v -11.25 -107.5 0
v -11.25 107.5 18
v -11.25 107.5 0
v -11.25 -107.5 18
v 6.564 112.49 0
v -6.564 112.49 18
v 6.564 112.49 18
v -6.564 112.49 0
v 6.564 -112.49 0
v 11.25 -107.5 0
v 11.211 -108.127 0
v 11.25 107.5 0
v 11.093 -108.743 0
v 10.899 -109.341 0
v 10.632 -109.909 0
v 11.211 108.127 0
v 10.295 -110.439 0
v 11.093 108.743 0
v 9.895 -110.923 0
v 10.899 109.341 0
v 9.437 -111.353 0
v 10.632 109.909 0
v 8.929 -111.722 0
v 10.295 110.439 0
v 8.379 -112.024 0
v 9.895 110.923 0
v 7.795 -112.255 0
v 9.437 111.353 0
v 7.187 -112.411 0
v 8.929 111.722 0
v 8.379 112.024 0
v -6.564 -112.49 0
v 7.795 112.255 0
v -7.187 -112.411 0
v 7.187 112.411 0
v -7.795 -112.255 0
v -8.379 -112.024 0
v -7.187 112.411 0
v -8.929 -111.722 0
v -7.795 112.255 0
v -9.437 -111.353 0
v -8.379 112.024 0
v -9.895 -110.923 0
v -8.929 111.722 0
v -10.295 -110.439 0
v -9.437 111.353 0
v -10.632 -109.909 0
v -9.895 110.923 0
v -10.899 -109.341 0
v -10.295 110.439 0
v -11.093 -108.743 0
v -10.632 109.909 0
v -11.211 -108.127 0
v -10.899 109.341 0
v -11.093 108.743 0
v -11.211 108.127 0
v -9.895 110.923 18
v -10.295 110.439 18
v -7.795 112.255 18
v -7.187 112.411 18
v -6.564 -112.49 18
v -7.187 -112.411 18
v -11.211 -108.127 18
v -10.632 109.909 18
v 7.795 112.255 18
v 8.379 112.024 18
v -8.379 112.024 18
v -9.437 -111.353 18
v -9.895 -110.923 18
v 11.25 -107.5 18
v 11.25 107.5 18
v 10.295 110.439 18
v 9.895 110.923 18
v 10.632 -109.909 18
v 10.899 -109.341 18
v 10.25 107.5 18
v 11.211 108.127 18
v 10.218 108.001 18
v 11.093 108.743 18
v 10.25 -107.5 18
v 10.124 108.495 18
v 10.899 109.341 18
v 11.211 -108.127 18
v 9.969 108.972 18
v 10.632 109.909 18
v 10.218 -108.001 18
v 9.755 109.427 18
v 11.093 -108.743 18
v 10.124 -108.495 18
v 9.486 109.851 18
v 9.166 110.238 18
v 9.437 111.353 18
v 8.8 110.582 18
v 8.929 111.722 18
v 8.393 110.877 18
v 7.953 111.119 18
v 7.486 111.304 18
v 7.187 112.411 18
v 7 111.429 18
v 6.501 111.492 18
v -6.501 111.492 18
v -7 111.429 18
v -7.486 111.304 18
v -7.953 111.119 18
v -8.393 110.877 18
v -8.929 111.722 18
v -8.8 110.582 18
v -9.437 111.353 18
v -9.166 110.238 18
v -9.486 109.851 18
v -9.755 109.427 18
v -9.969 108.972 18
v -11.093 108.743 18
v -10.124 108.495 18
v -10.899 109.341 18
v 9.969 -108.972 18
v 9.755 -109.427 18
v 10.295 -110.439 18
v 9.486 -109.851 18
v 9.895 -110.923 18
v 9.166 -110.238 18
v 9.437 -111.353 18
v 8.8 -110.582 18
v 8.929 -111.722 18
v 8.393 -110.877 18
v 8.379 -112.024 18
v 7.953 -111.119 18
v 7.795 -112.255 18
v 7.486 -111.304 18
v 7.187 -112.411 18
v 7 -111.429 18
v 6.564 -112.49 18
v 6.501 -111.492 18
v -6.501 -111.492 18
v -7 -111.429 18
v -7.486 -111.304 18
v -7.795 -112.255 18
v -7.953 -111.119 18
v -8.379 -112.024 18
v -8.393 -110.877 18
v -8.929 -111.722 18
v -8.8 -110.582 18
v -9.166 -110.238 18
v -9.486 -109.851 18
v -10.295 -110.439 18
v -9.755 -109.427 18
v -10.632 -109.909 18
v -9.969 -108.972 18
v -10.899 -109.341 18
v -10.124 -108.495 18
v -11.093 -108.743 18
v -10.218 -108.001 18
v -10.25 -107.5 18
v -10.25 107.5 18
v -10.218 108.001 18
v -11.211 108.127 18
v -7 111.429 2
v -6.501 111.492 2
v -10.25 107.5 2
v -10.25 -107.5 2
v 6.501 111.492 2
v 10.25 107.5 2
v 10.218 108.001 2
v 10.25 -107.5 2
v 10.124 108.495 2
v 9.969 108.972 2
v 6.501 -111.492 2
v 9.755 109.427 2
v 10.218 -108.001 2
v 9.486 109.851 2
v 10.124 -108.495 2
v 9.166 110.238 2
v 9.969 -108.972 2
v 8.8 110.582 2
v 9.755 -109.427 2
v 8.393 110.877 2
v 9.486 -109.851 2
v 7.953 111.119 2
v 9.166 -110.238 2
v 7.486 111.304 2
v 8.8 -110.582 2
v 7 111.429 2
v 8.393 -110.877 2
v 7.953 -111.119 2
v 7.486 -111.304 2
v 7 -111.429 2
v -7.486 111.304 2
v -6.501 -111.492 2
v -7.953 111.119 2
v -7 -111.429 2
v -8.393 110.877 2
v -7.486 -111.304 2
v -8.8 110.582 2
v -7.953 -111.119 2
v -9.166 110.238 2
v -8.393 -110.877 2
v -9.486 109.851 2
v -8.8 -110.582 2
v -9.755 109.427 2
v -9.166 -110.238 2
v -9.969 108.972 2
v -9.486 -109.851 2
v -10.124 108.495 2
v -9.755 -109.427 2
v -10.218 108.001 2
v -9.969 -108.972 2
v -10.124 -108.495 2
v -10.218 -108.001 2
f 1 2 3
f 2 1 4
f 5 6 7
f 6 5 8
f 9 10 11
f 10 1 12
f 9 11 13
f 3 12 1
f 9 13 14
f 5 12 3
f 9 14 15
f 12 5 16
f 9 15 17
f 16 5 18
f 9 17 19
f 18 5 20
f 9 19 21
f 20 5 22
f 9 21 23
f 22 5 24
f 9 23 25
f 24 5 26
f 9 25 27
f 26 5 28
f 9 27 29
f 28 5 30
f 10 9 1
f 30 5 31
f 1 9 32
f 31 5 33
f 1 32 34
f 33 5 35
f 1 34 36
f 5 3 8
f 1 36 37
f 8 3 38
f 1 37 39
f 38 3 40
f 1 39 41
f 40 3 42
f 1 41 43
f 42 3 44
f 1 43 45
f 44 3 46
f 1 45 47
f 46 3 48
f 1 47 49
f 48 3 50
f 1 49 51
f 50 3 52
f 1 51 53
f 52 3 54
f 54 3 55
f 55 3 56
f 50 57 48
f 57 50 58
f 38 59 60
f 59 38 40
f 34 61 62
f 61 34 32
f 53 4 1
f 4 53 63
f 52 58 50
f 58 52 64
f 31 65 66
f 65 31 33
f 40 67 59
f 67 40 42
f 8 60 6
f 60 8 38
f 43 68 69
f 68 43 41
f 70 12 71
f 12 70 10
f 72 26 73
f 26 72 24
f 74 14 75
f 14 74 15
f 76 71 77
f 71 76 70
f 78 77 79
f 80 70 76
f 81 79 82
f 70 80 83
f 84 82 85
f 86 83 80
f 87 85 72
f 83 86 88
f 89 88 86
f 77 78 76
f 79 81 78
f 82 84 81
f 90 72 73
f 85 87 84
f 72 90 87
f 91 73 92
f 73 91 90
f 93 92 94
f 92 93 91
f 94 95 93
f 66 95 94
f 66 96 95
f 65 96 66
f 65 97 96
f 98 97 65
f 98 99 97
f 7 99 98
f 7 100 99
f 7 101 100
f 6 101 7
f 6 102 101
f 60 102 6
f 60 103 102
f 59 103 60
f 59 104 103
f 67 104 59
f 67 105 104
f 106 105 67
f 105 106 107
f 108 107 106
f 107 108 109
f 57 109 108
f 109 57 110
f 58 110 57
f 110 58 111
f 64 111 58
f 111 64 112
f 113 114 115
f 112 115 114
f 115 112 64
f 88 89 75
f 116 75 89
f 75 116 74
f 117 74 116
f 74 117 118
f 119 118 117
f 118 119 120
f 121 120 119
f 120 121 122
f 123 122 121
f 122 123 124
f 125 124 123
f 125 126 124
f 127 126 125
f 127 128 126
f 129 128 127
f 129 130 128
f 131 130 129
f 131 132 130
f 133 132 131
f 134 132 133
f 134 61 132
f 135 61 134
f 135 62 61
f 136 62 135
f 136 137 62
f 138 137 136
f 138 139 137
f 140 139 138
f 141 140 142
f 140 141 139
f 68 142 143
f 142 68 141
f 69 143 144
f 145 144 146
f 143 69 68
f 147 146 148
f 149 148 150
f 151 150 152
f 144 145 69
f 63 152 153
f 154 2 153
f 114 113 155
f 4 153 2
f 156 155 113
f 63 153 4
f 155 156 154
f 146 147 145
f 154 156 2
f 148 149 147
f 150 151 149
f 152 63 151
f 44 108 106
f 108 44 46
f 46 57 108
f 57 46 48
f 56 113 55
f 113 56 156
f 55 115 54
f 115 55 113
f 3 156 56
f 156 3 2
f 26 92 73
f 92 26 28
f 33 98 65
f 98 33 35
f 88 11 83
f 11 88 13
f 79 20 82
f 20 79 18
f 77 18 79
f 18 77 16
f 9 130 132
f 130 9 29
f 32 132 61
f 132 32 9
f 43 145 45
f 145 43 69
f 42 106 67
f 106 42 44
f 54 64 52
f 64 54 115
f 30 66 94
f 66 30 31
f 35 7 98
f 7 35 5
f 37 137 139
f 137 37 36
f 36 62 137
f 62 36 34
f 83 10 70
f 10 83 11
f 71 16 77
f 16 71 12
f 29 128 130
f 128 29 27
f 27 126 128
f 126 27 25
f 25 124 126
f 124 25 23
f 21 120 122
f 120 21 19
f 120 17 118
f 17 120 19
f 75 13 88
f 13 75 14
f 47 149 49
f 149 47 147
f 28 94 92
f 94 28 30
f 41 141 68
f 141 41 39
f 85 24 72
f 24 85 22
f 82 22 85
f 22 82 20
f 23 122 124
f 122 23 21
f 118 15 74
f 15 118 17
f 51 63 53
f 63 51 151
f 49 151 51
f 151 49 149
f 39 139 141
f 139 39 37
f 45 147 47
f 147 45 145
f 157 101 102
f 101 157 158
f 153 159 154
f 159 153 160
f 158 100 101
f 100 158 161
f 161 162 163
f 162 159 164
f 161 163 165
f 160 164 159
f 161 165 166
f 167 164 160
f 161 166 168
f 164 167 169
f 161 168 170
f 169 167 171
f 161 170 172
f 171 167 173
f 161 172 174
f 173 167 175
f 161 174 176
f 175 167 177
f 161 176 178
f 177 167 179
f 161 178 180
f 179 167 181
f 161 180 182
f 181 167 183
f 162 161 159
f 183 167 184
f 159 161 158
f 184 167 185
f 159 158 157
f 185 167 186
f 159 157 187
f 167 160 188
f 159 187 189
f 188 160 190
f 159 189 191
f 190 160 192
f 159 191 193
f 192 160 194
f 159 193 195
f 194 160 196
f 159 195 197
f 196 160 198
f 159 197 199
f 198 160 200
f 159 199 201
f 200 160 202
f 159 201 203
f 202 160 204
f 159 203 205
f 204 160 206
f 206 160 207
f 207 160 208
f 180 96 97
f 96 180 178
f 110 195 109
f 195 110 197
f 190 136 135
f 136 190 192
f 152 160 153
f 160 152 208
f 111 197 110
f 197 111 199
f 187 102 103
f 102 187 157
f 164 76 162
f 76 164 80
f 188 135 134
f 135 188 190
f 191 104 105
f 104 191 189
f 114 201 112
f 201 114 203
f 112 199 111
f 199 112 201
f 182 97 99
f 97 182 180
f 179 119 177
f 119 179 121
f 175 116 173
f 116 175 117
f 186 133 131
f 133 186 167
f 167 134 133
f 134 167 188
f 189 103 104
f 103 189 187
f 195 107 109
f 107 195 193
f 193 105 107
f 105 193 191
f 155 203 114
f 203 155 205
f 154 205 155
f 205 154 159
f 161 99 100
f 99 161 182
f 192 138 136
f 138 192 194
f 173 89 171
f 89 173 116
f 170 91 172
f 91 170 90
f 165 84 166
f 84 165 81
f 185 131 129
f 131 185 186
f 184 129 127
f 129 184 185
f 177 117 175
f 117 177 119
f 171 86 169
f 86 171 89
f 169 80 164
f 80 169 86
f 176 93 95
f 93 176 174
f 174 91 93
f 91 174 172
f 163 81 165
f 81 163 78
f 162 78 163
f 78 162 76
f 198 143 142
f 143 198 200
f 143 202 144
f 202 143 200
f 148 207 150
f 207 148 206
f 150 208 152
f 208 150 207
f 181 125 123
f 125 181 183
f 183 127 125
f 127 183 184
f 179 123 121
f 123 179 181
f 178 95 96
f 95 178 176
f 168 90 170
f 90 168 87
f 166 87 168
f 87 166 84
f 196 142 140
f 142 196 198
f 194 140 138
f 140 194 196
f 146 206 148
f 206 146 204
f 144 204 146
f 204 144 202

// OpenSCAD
$fn = 50;


difference() {
	union() {
		hull() {
			translate(v = [-6.2500000000, 107.5000000000, 0]) {
				cylinder(h = 18, r = 5);
			}
			translate(v = [6.2500000000, 107.5000000000, 0]) {
				cylinder(h = 18, r = 5);
			}
			translate(v = [-6.2500000000, -107.5000000000, 0]) {
				cylinder(h = 18, r = 5);
			}
			translate(v = [6.2500000000, -107.5000000000, 0]) {
				cylinder(h = 18, r = 5);
			}
		}
	}
	union() {
		translate(v = [0, 0, 2]) {
			hull() {
				translate(v = [-6.2500000000, 107.5000000000, 0]) {
					cylinder(h = 16, r = 4);
				}
				translate(v = [6.2500000000, 107.5000000000, 0]) {
					cylinder(h = 16, r = 4);
				}
				translate(v = [-6.2500000000, -107.5000000000, 0]) {
					cylinder(h = 16, r = 4);
				}
				translate(v = [6.2500000000, -107.5000000000, 0]) {
					cylinder(h = 16, r = 4);
				}
			}
		}
	}
}
